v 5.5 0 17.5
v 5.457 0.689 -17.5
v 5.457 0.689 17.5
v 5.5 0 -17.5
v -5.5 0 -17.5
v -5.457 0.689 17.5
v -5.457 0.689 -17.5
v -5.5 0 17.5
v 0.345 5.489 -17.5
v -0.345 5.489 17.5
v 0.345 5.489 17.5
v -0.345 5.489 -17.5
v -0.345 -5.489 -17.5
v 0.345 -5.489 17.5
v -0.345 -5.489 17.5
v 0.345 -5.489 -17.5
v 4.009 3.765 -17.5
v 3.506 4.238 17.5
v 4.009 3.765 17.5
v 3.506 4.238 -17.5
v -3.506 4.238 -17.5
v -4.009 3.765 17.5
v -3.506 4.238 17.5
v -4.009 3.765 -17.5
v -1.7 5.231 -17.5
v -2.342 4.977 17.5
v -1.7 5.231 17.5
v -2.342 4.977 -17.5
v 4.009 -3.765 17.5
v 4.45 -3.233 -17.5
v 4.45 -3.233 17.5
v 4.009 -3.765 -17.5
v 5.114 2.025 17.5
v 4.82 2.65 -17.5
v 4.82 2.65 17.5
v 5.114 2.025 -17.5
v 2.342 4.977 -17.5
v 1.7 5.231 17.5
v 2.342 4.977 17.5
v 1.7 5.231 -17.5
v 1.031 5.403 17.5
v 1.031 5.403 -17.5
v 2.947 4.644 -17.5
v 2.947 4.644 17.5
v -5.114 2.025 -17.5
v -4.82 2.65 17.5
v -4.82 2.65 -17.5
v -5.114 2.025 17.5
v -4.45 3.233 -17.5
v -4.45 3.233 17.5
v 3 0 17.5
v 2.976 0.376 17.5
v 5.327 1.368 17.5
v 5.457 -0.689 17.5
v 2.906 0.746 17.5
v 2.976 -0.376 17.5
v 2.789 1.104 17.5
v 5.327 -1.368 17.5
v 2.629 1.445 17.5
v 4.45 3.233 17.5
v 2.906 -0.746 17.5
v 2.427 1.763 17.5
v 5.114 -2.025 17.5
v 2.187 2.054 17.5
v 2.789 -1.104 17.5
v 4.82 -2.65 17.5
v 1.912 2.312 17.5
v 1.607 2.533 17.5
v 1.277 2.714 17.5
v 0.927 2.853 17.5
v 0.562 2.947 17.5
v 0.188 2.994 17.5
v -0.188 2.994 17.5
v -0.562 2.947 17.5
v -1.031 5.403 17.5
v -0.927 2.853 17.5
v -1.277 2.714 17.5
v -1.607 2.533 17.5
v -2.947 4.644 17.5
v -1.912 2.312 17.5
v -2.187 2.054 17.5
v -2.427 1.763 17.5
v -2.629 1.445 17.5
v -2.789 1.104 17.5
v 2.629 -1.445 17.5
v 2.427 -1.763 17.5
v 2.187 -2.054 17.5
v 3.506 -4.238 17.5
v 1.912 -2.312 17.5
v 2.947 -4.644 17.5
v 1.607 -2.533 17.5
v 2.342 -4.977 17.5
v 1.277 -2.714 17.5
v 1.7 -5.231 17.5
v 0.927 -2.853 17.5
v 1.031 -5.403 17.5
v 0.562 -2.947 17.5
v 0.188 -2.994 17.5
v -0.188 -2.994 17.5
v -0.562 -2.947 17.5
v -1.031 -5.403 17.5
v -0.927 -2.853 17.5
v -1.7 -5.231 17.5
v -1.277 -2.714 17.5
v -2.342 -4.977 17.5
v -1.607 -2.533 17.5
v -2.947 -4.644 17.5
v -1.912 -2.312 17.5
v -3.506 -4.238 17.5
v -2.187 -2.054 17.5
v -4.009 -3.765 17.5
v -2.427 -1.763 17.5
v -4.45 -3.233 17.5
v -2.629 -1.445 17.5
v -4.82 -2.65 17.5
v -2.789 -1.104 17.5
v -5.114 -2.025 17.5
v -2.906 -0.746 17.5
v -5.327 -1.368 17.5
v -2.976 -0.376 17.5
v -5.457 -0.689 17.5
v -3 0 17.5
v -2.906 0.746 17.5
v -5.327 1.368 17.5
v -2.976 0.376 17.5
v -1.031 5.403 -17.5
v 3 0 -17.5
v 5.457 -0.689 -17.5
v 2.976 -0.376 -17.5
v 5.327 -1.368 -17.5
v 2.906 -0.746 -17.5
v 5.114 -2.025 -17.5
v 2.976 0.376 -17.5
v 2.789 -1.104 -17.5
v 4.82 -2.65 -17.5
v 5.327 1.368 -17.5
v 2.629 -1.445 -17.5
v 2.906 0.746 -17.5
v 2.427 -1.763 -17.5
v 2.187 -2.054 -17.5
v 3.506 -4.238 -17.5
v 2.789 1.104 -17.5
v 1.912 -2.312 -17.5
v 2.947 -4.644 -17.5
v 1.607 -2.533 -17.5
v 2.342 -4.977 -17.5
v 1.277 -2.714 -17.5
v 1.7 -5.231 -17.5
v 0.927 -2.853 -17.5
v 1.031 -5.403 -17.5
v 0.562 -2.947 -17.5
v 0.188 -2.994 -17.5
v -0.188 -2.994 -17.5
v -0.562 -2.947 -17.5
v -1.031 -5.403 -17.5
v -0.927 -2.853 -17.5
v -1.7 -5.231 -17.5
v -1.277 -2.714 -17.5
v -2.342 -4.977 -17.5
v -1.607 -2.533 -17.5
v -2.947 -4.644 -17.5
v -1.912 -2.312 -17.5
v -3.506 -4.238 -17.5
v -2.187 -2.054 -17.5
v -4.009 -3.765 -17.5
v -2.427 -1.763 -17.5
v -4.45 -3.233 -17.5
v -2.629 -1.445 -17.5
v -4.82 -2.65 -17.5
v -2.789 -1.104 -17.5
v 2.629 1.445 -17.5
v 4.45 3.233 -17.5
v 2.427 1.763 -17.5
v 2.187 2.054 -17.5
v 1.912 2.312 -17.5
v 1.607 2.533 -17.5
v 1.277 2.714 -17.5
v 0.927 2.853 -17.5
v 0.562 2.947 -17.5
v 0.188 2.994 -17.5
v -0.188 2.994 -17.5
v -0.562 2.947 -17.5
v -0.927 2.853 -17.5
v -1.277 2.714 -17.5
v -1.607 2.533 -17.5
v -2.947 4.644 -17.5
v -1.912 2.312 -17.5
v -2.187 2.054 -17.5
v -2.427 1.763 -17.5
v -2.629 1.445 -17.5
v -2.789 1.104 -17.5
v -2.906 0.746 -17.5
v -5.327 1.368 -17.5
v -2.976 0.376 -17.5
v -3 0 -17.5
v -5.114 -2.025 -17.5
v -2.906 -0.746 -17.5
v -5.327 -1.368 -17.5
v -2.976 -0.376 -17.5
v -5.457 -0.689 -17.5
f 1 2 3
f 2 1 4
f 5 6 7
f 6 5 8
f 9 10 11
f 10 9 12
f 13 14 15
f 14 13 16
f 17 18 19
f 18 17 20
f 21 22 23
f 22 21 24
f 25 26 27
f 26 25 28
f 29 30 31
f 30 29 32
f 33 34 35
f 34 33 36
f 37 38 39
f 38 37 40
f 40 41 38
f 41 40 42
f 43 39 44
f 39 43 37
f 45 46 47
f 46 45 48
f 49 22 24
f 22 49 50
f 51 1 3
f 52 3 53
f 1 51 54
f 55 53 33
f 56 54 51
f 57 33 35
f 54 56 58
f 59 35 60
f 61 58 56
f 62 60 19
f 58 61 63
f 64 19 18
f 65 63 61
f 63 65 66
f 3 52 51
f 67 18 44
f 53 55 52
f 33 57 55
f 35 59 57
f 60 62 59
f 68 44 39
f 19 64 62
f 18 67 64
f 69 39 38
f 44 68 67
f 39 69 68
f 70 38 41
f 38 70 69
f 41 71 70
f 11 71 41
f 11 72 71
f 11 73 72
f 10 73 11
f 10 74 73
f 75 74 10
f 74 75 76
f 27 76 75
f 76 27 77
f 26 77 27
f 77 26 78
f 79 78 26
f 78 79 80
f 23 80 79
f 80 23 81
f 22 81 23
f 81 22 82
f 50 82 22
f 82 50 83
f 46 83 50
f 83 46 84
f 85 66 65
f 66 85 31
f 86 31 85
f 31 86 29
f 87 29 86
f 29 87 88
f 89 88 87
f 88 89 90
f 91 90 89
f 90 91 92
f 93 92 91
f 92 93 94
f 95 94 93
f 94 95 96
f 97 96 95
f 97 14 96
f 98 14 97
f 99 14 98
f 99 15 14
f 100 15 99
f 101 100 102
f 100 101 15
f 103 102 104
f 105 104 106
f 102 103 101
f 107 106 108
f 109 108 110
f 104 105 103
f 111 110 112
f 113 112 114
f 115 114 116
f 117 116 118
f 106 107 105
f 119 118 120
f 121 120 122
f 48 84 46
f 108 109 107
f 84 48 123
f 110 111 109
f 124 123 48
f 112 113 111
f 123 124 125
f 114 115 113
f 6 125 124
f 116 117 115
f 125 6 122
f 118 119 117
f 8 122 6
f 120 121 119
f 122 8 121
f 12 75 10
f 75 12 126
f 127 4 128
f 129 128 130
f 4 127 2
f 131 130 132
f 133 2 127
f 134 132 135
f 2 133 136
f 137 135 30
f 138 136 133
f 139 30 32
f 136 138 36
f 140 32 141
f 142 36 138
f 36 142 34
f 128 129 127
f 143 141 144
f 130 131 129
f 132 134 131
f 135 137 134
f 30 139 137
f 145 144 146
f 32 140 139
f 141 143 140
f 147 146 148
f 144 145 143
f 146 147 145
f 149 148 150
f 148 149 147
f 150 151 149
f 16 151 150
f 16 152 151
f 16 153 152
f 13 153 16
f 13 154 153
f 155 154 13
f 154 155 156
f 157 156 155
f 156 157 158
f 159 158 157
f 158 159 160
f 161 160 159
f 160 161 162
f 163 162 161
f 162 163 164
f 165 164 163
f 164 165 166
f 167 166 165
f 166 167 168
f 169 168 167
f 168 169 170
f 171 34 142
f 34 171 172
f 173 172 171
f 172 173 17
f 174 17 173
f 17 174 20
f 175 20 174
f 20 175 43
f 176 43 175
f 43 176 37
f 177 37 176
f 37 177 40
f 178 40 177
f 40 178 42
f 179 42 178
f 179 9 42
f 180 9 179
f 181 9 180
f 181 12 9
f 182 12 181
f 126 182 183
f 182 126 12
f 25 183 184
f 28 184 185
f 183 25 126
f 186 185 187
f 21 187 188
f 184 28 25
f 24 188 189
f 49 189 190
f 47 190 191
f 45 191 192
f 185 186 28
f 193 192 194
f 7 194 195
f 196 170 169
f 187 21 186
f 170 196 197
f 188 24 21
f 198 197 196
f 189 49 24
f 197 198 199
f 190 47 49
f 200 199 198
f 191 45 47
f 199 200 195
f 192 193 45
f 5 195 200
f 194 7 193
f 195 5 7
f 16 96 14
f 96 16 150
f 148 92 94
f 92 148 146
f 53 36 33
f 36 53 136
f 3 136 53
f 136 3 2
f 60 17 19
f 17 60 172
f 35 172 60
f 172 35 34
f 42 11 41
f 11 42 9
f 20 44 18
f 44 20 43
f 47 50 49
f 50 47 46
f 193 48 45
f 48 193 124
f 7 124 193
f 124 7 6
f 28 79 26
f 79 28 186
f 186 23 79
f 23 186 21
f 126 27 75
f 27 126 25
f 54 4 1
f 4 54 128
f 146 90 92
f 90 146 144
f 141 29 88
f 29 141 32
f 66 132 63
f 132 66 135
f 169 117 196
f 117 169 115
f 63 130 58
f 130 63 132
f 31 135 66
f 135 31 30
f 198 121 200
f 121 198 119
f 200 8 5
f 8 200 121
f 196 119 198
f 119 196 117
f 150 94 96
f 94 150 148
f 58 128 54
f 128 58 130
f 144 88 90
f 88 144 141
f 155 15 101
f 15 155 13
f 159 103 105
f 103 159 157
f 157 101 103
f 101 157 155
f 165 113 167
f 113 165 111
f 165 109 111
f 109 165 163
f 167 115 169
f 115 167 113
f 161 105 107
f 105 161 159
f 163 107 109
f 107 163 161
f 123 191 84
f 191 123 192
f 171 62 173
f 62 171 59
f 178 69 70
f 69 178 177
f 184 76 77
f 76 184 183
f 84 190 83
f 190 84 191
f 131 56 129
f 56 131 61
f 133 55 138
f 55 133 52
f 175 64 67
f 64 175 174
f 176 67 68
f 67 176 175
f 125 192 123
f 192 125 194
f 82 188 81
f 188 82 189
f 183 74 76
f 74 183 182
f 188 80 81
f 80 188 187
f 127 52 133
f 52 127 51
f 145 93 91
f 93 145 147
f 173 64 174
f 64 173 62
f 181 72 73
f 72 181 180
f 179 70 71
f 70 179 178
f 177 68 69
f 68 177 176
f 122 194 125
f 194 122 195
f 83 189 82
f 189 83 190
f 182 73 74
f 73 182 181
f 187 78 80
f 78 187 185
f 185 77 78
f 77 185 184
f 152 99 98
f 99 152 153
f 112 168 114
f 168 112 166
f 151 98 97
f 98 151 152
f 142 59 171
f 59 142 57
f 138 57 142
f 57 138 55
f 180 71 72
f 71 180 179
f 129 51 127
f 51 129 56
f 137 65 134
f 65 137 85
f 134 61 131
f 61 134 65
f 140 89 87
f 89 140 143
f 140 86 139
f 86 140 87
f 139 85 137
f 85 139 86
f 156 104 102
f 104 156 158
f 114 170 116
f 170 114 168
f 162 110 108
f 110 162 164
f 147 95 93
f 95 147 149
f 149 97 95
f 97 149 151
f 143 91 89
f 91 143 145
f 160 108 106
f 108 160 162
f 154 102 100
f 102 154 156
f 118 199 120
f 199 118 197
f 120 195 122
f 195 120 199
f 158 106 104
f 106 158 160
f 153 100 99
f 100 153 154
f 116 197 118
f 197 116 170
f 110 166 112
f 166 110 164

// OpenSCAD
$fn = 50;


difference() {
	union() {
		translate(v = [0, 0, -17.5000000000]) {
			cylinder(h = 35, r = 5.5000000000);
		}
	}
	union() {
		translate(v = [0, 0, -100.0000000000]) {
			cylinder(h = 200, r = 3.0000000000);
		}
	}
}
